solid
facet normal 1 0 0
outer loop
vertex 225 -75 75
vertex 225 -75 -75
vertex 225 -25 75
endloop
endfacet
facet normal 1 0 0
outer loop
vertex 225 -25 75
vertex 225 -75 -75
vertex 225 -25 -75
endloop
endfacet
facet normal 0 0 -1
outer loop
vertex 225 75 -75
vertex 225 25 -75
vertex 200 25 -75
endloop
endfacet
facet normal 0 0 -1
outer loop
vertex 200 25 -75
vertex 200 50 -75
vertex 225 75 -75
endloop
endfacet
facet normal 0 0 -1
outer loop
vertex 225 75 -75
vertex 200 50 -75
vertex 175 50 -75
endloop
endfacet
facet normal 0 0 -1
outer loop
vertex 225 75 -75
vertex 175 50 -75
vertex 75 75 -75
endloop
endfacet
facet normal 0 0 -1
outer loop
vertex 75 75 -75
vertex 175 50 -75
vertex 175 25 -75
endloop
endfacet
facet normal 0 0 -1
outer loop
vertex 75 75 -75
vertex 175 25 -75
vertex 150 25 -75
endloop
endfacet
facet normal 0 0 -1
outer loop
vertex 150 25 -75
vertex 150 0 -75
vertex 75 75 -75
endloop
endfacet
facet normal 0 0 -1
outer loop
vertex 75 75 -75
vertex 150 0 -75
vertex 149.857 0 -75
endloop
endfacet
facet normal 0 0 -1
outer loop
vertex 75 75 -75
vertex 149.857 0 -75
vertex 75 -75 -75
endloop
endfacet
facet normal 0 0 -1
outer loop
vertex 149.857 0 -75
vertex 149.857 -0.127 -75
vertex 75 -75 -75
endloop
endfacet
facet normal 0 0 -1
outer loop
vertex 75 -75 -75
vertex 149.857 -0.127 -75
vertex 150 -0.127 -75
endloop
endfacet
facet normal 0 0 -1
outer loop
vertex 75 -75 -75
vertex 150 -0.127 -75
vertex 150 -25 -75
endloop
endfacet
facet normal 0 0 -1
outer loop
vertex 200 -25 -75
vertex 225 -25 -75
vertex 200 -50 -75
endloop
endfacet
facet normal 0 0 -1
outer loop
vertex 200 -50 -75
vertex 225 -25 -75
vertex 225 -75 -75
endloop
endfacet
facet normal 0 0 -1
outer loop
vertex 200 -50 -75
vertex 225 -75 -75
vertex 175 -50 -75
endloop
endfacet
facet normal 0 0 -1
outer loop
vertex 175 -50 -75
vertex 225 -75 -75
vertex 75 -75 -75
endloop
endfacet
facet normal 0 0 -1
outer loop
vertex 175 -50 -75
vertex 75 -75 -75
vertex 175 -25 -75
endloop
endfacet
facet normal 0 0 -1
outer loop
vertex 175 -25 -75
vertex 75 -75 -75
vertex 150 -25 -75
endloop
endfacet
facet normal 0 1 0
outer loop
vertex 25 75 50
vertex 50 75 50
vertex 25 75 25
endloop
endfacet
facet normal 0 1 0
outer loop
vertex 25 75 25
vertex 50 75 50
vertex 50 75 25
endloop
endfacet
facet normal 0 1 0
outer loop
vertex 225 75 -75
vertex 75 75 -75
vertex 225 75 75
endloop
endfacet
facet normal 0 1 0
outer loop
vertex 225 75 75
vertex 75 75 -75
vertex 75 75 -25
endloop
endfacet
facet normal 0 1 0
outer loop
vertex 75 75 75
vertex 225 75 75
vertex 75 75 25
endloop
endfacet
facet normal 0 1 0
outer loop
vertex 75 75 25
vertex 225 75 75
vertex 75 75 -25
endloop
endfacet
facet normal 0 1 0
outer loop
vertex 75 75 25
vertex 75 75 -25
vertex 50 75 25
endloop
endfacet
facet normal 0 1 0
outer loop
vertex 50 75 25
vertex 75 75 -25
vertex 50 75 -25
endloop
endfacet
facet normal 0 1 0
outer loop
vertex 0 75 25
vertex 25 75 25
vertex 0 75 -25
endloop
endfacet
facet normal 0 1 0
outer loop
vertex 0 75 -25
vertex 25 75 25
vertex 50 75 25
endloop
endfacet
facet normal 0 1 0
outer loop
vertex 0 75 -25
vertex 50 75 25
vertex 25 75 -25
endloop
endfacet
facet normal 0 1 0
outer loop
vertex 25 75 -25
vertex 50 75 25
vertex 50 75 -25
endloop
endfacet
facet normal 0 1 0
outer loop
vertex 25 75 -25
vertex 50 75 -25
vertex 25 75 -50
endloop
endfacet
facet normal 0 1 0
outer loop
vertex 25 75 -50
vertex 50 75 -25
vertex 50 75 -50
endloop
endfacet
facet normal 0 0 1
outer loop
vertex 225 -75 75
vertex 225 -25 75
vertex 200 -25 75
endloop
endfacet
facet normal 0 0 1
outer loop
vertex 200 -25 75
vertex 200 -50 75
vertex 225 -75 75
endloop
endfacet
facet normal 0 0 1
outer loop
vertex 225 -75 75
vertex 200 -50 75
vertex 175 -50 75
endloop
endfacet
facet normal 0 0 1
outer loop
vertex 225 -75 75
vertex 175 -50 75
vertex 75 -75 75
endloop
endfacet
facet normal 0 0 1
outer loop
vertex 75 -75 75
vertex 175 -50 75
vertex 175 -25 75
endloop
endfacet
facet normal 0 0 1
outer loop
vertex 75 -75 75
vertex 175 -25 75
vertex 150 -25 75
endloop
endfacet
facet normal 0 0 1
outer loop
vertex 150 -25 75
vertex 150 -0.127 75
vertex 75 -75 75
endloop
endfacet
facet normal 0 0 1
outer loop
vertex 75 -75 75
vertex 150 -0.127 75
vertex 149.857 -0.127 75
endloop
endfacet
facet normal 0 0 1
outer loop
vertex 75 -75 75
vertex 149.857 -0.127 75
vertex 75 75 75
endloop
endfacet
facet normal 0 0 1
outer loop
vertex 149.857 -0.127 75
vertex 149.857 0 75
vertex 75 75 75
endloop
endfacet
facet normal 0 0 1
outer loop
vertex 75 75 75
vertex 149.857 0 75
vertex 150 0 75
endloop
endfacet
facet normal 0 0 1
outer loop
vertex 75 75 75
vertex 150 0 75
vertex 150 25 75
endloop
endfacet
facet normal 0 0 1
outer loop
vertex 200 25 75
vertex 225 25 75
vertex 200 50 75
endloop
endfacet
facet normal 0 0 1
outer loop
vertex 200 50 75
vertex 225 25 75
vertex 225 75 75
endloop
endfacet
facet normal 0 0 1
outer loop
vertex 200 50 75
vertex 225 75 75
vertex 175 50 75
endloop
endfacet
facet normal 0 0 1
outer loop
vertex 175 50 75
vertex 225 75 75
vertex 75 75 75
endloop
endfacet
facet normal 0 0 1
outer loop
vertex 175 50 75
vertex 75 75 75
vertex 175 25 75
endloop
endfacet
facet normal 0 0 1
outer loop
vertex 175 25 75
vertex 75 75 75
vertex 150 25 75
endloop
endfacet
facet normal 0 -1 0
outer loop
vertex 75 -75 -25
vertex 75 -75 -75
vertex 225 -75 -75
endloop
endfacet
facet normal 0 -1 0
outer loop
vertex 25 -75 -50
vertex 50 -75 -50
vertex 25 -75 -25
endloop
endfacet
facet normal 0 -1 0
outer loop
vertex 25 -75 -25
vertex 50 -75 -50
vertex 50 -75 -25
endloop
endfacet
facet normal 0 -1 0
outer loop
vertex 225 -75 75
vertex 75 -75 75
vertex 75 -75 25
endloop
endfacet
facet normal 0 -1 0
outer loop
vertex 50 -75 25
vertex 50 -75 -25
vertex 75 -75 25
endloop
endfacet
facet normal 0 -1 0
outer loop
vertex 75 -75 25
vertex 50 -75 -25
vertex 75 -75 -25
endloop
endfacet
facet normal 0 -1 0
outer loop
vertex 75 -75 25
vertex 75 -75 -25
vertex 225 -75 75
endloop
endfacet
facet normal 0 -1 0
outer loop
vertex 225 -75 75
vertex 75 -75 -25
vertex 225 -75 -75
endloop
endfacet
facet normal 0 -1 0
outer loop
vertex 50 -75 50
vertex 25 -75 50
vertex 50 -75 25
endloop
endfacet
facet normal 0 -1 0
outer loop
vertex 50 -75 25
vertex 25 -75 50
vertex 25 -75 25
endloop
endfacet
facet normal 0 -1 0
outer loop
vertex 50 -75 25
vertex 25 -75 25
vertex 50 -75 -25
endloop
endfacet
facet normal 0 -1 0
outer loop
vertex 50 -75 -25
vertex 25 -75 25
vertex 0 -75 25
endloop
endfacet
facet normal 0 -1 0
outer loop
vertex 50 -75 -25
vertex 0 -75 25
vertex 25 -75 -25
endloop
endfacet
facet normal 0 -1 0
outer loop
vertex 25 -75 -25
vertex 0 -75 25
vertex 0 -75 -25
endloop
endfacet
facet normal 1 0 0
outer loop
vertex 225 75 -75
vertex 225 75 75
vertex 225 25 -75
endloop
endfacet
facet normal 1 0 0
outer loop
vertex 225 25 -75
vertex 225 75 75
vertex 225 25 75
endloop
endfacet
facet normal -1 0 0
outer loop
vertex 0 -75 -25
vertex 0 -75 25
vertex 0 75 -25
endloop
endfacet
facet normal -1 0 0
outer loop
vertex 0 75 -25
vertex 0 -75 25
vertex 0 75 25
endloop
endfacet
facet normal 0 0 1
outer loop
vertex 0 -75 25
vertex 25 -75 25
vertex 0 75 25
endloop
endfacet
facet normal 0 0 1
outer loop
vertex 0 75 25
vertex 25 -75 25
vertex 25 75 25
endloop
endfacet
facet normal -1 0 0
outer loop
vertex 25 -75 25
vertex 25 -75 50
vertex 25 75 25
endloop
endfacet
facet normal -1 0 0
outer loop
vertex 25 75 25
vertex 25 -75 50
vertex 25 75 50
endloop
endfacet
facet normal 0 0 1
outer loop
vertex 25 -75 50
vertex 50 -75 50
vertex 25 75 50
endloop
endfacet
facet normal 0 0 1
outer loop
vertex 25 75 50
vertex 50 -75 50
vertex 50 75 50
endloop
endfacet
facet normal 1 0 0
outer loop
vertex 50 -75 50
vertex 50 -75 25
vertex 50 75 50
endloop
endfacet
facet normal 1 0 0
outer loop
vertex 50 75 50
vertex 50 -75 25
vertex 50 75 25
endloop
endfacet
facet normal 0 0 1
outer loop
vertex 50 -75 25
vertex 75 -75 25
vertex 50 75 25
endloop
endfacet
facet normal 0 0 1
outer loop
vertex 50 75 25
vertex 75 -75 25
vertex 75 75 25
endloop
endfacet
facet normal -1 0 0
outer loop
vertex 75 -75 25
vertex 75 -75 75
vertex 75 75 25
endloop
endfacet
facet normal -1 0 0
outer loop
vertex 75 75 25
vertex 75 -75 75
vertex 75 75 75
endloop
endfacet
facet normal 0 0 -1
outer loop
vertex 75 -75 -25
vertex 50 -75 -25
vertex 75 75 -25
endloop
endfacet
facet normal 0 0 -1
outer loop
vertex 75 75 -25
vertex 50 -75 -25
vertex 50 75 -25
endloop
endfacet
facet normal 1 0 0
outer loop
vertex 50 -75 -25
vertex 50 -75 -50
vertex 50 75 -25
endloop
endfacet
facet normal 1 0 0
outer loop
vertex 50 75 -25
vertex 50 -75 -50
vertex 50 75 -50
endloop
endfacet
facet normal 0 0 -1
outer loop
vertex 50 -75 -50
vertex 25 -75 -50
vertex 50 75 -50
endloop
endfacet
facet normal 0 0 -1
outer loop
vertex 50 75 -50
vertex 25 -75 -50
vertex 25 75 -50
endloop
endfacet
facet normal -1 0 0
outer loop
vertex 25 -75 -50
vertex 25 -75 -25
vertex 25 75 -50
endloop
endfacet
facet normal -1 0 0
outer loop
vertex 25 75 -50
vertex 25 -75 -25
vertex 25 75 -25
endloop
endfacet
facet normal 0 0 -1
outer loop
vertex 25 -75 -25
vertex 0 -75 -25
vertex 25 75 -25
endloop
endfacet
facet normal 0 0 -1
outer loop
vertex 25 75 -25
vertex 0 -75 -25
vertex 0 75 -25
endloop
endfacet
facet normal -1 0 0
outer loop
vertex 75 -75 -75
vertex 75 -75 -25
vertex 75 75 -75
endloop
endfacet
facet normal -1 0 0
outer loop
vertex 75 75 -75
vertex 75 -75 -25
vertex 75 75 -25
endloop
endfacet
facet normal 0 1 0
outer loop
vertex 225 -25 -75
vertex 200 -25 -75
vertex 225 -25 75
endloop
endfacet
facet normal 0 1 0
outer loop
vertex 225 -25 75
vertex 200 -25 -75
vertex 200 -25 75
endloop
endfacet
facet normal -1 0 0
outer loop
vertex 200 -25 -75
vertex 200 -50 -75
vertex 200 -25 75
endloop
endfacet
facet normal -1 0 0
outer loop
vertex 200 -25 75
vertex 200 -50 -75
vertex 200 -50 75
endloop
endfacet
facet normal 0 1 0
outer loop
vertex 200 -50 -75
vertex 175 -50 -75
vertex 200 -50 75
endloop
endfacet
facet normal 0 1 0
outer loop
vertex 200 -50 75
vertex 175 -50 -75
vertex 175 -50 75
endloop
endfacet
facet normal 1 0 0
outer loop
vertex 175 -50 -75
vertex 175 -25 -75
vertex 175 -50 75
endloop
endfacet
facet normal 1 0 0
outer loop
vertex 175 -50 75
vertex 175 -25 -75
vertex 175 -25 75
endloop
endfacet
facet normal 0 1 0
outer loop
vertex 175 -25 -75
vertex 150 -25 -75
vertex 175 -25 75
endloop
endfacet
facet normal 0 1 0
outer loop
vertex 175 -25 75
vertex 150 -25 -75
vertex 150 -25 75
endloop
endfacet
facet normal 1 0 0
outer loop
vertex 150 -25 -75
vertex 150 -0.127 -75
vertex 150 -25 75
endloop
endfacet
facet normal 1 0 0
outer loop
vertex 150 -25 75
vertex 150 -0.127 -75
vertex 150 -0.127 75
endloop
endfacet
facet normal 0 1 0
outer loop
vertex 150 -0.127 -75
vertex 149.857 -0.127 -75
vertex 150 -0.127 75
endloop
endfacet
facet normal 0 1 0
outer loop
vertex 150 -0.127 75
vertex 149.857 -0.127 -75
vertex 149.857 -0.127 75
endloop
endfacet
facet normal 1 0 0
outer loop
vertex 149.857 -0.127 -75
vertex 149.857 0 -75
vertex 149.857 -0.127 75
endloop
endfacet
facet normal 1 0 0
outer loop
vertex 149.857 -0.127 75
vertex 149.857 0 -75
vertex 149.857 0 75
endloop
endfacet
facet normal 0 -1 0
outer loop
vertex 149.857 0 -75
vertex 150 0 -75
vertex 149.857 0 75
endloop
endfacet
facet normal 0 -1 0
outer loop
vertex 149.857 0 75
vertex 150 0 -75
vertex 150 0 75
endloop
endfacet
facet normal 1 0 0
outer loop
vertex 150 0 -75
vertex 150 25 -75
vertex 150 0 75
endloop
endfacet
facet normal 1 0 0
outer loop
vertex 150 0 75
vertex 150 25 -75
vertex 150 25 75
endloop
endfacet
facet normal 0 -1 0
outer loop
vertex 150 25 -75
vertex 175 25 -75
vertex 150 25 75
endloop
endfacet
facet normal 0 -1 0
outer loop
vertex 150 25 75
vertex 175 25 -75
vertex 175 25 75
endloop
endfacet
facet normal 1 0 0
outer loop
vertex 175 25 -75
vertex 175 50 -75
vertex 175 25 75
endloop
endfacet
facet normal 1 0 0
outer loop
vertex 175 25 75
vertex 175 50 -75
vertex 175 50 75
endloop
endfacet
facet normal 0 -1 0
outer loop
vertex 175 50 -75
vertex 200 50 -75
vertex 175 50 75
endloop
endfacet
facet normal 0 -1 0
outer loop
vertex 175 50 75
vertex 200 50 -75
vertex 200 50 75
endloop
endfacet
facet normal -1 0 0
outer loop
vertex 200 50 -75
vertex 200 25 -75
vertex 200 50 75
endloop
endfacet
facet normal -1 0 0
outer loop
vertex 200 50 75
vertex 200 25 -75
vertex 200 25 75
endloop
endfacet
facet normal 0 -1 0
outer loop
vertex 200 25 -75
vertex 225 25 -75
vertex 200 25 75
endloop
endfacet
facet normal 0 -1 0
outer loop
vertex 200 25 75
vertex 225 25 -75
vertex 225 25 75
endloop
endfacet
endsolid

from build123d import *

# Parameters (mm, degrees)
SKETCH2_W           = 150
SKETCH2_H           = 150
BOSS_EXTRUDE1_DEPTH = 225
CUT_EXTRUDE1_DEPTH  = 150
CUT_EXTRUDE2_DEPTH  = 150


with BuildPart() as part:
    # Sketch2 → Boss-Extrude1 (new body)
    with BuildSketch(Plane(origin=(0, 0, 0), x_dir=(0, 0, -1), z_dir=(1, 0, 0))):
        Rectangle(SKETCH2_W, SKETCH2_H)
    extrude(amount=BOSS_EXTRUDE1_DEPTH)

    # Sketch3 → Cut-Extrude1 (cut)
    with BuildSketch(Plane(origin=(0, 75, 0), x_dir=(1, 0, 0), z_dir=(0, 1, 0))):
        Polygon((0, 75), (0, 25), (25, 25), (25, 50), (50, 50), (50, 25), (75, 25), (75, 75), align=None)
        Polygon((25, -25), (0, -25), (0, -75), (75, -75), (75, -25), (50, -25), (50, -50), (25, -50), align=None)
    extrude(amount=-CUT_EXTRUDE1_DEPTH, mode=Mode.SUBTRACT)

    # Sketch4 → Cut-Extrude2 (cut)
    with BuildSketch(Plane.XY.offset(75)):
        Polygon((225, 25), (200, 25), (200, 50), (175, 50), (175, 25), (150, 25), (150, 0), (149.856793805, 0), (149.856793805, -0.1270597), (150, -0.1270597), (150, -25), (175, -25), (175, -50), (200, -50), (200, -25), (225, -25), align=None)
    extrude(amount=-CUT_EXTRUDE2_DEPTH, mode=Mode.SUBTRACT)


solid = part.part
